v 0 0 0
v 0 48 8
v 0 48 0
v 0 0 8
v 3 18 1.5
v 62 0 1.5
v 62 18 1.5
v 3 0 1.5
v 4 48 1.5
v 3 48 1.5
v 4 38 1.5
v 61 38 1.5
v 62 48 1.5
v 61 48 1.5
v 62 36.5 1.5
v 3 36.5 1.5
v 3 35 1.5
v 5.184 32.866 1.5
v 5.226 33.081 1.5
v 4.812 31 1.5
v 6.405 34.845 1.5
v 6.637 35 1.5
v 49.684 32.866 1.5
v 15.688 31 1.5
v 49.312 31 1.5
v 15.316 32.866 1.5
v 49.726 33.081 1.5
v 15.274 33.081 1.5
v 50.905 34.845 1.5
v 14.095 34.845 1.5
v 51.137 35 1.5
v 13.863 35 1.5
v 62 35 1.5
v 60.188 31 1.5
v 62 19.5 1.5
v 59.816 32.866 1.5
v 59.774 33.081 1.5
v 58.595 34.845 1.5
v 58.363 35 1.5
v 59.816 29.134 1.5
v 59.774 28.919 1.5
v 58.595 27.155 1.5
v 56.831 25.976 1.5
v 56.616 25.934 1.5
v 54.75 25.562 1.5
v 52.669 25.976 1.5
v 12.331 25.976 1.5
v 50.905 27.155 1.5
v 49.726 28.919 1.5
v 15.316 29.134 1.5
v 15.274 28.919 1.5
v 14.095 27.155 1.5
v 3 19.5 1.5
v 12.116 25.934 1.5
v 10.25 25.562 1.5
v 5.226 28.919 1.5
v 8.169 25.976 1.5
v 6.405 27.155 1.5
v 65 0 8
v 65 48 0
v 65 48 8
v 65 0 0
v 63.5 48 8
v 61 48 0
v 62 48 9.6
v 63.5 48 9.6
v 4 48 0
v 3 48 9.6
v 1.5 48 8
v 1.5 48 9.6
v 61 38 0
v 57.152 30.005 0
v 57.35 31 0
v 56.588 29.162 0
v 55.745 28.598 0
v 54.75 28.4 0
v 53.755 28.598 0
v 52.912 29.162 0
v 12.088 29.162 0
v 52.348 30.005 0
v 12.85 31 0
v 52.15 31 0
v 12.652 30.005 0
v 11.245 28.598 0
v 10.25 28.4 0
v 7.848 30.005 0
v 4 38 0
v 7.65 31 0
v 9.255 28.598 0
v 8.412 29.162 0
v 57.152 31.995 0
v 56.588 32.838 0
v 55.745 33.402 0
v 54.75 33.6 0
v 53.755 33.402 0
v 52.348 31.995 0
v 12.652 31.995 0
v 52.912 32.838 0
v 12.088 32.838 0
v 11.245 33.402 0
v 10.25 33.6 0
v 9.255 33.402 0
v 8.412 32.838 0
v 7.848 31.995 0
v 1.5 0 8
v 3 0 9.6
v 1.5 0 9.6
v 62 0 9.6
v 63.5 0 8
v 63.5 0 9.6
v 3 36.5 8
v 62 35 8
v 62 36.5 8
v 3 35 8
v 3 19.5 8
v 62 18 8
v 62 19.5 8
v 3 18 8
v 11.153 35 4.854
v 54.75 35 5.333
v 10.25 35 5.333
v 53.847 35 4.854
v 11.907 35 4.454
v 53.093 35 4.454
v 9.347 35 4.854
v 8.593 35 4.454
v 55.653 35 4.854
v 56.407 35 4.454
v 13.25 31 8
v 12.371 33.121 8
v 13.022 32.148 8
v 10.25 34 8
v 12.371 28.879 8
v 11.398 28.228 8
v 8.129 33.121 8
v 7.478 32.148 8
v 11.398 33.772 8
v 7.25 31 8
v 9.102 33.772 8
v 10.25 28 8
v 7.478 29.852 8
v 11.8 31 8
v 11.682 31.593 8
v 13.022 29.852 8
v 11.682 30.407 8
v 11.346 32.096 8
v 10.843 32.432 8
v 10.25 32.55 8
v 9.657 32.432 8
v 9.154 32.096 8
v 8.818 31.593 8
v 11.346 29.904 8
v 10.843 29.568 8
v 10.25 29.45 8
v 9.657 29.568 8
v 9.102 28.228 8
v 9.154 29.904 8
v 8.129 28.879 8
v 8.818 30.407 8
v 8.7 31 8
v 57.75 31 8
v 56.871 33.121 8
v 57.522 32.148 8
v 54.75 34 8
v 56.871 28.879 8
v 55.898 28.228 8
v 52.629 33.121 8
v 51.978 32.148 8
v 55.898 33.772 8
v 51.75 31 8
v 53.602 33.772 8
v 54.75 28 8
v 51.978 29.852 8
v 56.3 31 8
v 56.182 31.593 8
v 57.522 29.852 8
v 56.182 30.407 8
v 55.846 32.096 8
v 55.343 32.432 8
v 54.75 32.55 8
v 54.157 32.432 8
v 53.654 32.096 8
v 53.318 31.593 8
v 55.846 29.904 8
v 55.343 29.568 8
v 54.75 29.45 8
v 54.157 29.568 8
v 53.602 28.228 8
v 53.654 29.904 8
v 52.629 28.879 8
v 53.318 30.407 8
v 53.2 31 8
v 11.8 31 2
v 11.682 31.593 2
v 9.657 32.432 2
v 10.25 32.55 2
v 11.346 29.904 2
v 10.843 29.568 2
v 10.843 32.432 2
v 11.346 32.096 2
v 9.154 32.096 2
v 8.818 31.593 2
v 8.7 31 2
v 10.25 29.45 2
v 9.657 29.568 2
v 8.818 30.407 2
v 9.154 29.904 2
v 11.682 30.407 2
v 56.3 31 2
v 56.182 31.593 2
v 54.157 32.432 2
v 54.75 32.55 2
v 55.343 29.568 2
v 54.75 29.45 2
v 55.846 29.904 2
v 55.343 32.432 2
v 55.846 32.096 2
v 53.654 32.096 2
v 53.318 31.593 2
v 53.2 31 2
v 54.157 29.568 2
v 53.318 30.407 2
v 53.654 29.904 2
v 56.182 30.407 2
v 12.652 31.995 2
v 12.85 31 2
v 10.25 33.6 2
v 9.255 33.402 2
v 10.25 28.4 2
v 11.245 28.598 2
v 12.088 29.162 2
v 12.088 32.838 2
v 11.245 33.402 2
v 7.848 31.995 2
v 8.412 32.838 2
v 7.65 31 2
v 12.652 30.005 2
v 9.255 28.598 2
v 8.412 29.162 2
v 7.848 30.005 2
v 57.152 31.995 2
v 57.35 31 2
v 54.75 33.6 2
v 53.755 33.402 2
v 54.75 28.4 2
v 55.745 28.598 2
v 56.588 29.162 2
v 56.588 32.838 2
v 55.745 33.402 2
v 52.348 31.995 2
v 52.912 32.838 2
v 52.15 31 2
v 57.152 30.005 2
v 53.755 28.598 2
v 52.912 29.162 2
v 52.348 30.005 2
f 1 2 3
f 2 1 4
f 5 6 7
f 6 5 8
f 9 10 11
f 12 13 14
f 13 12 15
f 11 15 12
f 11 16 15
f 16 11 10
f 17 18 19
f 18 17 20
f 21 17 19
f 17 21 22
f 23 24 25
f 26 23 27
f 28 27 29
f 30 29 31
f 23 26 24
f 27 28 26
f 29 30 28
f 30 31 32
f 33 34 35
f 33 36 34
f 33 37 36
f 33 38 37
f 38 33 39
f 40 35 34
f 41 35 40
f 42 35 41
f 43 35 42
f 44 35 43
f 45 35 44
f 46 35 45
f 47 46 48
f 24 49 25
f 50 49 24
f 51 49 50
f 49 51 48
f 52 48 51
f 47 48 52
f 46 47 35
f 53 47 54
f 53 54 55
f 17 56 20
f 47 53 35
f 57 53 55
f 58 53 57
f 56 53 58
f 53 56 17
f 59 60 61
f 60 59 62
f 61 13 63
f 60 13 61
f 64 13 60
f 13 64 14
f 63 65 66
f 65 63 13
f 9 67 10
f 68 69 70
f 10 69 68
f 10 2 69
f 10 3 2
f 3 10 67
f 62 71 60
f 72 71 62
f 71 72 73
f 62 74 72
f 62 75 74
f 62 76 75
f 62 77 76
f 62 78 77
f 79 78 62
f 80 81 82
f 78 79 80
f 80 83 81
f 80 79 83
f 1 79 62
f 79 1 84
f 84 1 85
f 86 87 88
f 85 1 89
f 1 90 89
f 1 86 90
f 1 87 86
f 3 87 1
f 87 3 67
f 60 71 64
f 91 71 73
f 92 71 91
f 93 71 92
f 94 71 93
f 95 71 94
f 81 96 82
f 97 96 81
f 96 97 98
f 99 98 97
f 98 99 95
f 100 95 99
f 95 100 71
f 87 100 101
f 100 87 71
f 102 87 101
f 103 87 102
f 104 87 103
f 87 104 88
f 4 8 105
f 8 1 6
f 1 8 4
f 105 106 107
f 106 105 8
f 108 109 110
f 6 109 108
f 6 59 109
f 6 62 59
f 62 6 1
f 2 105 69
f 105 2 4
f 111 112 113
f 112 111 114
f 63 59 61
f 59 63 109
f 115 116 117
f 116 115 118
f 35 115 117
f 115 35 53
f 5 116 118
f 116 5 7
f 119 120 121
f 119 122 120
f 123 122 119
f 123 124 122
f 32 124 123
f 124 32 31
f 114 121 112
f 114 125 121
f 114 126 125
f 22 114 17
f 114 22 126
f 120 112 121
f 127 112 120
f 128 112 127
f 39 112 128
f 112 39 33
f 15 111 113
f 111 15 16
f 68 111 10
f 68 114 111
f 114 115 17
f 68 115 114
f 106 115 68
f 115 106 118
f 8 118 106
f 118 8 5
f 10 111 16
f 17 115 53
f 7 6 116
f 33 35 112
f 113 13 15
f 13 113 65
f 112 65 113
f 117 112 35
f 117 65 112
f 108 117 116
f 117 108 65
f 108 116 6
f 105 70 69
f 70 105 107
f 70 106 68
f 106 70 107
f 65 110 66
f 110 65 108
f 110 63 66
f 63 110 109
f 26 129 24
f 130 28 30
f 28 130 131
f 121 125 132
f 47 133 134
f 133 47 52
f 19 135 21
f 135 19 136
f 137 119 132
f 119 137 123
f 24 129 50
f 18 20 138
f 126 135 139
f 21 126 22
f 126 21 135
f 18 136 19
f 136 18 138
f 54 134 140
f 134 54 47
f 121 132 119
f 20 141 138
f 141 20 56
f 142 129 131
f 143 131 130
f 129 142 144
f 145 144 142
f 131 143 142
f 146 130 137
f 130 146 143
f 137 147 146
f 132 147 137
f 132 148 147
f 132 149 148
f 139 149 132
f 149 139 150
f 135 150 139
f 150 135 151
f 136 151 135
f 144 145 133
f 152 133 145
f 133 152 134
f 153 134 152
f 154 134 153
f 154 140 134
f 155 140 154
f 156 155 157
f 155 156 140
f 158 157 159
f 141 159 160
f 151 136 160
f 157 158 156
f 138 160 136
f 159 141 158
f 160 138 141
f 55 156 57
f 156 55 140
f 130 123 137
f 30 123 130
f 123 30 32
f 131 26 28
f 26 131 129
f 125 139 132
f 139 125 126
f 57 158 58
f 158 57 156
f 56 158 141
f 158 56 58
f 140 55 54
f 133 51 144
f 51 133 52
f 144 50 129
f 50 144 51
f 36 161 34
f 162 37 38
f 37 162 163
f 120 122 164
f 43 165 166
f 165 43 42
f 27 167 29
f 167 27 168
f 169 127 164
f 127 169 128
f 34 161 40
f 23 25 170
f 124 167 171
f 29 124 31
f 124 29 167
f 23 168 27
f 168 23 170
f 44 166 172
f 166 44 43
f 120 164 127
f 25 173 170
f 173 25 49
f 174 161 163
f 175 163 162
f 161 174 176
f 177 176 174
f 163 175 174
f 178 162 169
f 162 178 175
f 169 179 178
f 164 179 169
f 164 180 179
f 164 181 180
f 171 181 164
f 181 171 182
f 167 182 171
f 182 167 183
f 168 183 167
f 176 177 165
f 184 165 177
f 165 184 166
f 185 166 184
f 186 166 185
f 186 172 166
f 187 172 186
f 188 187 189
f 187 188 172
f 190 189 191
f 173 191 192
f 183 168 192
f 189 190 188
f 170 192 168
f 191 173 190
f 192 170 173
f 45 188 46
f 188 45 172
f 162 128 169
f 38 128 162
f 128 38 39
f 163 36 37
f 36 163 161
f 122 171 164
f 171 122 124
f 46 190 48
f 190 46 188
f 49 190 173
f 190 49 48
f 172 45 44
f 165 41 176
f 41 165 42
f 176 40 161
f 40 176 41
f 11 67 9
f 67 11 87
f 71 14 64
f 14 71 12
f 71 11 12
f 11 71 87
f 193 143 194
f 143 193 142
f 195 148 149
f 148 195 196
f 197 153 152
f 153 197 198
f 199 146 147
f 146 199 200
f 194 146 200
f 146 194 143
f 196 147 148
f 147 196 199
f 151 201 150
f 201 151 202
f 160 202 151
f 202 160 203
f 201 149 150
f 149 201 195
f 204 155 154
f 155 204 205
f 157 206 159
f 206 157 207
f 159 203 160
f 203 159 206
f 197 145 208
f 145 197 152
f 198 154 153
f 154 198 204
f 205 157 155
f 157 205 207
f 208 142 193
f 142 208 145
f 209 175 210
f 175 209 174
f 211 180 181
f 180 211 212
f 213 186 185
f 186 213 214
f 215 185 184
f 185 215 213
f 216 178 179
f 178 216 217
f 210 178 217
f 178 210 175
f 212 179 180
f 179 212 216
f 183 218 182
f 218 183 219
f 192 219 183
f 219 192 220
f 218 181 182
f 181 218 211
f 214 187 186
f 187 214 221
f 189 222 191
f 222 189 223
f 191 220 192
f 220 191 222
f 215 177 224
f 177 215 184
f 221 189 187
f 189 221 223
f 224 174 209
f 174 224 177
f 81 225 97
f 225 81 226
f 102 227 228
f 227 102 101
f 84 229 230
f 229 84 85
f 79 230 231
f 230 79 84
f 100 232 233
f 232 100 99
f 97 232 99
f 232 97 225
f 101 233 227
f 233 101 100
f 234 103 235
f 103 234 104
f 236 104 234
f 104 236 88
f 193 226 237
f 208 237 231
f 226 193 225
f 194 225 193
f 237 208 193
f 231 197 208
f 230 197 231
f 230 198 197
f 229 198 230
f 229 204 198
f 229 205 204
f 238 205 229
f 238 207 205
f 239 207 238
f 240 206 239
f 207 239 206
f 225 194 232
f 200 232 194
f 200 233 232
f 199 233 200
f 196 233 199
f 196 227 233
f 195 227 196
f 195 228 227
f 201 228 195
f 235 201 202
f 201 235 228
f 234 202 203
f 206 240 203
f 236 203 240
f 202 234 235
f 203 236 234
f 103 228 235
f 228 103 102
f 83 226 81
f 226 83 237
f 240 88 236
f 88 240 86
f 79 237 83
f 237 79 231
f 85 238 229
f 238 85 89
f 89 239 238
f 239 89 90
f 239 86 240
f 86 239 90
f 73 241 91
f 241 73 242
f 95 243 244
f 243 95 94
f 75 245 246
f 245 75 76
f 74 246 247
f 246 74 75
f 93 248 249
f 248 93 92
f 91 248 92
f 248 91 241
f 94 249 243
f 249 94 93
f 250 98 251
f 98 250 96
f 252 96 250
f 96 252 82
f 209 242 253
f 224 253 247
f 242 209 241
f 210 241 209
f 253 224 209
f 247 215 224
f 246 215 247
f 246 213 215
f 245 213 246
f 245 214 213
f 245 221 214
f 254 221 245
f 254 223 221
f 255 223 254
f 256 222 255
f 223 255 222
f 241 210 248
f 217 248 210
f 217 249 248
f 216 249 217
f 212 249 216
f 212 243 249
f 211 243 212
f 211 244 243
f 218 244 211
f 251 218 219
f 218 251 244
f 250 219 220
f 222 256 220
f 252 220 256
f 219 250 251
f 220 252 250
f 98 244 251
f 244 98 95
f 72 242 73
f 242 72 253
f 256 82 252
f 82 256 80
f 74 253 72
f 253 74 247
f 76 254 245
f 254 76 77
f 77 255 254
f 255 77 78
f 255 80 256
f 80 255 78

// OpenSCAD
$fn = 16;


difference(){
    shape();
    
    
    //translate([4,0,0])
    //  cube([57, 10, 1.5]);
    
    translate([4,38,0])
      cube([57, 15, 1.5]);

    translate([10.25, 31, 6])
        cylinder(h=9, r=1.55, center=true);
    translate([65-10.25, 31, 6])
        cylinder(h=9, r=1.55, center=true);

    translate([10.25, 31, 1])
        cylinder(h=2, r=2.6, center=true);
    translate([65-10.25, 31, 1])
        cylinder(h=2, r=2.6, center=true);

}

module shape() {
    cube([65, 48, 1.5]);
    
    translate([0, 18, 0])
      cube([65, 1.5, 8]);
    translate([0, 35, 0])
      cube([65, 1.5, 8]);
    
    cube([3, 48, 8]);
      translate([65-3, 0, 0])
    cube([3, 48, 8]);

    translate([1.5, 0, 0])
      cube([1.5, 48, 9.6]);
    
    translate([65-3, 0, 0])
      cube([1.5, 48, 9.6]);
    
    translate([10.25, 31, 4])
        cylinder(h=8, r1=6, r2=3 , center=true);
    
    translate([65-10.25, 31, 4])
        cylinder(h=8, r1=6, r2=3, center=true);
}
